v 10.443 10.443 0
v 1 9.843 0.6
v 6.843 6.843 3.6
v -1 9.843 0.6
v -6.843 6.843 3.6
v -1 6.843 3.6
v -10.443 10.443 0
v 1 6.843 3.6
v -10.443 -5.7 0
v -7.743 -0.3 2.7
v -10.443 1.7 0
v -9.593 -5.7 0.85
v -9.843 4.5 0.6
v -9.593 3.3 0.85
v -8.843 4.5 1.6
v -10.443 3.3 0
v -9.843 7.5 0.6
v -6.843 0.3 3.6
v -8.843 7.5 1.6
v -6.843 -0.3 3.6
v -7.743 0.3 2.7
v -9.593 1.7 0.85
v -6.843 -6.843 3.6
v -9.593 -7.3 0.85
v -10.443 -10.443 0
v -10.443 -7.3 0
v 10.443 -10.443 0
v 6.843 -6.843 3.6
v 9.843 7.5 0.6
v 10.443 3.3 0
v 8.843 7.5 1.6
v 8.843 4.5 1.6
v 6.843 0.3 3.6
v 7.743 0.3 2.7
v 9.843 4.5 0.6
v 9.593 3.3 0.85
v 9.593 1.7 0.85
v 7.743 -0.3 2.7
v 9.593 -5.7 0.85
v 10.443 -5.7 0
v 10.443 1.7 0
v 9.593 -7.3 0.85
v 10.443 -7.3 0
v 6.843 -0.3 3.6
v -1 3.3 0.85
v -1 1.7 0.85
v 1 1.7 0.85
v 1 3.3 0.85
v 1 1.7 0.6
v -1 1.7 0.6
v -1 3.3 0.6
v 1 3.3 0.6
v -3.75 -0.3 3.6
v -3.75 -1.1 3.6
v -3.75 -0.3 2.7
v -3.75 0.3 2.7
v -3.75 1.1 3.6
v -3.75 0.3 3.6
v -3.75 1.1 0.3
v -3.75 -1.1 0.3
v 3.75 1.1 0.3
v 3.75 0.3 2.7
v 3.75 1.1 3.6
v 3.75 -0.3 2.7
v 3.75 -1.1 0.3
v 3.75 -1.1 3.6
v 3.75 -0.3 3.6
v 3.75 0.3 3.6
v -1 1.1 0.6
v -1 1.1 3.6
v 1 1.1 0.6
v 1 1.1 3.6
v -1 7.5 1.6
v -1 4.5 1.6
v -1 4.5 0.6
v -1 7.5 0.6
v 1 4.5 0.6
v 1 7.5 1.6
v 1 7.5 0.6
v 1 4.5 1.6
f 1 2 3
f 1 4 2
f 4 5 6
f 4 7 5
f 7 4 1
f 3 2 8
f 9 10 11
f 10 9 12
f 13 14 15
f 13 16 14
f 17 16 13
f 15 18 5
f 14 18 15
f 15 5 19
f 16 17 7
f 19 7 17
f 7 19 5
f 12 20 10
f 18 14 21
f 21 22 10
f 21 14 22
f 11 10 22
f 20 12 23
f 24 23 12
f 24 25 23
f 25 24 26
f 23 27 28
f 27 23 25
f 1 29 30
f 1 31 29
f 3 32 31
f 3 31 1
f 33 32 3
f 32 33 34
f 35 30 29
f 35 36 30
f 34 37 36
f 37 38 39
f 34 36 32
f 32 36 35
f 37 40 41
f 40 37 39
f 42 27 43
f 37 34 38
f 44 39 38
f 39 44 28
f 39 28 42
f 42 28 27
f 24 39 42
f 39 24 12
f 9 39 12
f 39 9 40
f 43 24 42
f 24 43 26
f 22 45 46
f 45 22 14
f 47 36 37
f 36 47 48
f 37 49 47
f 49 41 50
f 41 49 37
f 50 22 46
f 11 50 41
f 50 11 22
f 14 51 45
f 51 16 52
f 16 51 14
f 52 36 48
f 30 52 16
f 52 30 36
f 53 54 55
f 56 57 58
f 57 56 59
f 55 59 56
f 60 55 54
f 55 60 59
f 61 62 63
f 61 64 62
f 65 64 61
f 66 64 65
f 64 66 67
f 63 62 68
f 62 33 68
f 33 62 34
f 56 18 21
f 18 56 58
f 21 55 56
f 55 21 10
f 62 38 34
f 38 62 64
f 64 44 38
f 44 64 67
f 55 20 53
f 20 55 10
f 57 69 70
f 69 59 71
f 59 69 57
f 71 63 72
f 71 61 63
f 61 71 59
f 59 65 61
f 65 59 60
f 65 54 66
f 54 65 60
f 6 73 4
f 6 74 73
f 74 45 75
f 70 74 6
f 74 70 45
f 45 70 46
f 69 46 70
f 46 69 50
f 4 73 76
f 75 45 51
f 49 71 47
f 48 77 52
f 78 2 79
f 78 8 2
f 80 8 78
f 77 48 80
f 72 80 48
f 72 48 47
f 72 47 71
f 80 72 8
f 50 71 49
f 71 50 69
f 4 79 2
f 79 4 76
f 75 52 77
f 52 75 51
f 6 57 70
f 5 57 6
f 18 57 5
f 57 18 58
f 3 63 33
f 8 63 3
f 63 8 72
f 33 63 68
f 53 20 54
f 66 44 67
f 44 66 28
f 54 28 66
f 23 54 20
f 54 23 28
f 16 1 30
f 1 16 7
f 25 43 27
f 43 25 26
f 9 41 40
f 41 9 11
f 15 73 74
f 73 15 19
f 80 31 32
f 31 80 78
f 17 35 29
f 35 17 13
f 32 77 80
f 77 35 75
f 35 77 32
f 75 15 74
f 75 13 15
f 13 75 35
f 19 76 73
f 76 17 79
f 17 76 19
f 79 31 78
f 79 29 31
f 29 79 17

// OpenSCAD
// =============================================================================
// PROJECT: FIXED-WING OMNI-AERO ELRS MOUNT
// VERSION: 1.2 (4-Way Chamfer & Educational Comments)
// DESCRIPTION: A glue-on horizontal mount with all-around aerodynamic 
//              smoothing and recessed channels for ELRS antennas.
// =============================================================================

/* [1. BASE PLATE SETTINGS] */

// Total footprint width
base_w          = 25.0;  
// Total footprint length
base_l          = 25.0;  
// The flexible "hinge" layer (gluing surface)
base_thick      = 1.8;   
// The padded block that holds the antenna
pad_thick       = 1.8;   
// Relief cuts that allow the TPU to curve around a wing
slot_width      = 1.6;   

/* [2. ANTENNA HARDWARE SPECS] */

wire_dia        = .6;   
junction_dia    = 2.2;   
junction_l      = 7.5;   
feedline_dia    = 2.0;   
total_span      = 36.0;  

/* [3. RETENTION & AERO] */

ziptie_width    = 3.0;   
ziptie_thick    = 1.0; 
// Moves the zip-tie back to clamp the coax, not the dipoles
ziptie_offset   = 6.0;  
// Size of the aerodynamic ramps on all sides
aero_chamfer    = 4.0;

/* [4. INTERNAL CALCULATIONS] */

$fn = 60;
total_h = base_thick + pad_thick;

// =============================================================================
// MAIN ASSEMBLY
// =============================================================================

difference() {
    
    // --- STEP 1: THE SOLID BODY ---
    union() {
        // We start with a rounded block using the 'hull' of four cylinders.
        hull() {
            for(x=[-1,1], y=[-1,1]) {
                translate([x * (base_w/2 - 2), y * (base_l/2 - 2), 0])
                    cylinder(h=total_h, r=2);
            }
        }
    }

    // --- STEP 2: THE SUBTRACTIONS (The "Machining" Phase) ---

    // A. OMNI-DIRECTIONAL CHAMFERING
    // This 'for' loop rotates a cutting cube to shave all four edges.
    for(angle=[0, 90, 180, 270]) rotate([0, 0, angle]) {
        // We pick the distance based on whether we are cutting the side or end
        dist = (angle == 0 || angle == 180) ? base_l/2 : base_w/2;
        
        translate([0, dist, total_h])
            rotate([45, 0, 0])
                cube([max(base_w, base_l) + 10, aero_chamfer * 2, aero_chamfer * 2], center=true);
    }

    // B. FLEX RELIEF SLOTS (The "Tank Tread")
    // These only cut through the bottom 1.2mm membrane.
    for(i = [-base_l/2 + 6 : 9 : base_l/2 - 6]) {
        translate([0, i, -0.1])
            cube([base_w + 2, slot_width, base_thick + 0.1], center=true);
    }

    // C. THE ANTENNA CHANNELS (Milled into the top)
    translate([0, 0, total_h]) {
        
        // 1. Dipole Arms (Horizontal Bar)
        rotate([0, 90, 0])
            cylinder(h=total_span, d=wire_dia, center=true);
            
        // 2. T-Junction (The Center Node)
        rotate([0, 90, 0])
            cylinder(h=junction_l, d=junction_dia, center=true);
            
        // 3. Feedline Channel (The Tail)
        translate([0, base_l/4, 0])
            rotate([90, 0, 0])
                cylinder(h=base_l/2 + 2, d=feedline_dia, center=true);
                
        // 4. Snap-Fit Entry Slots (Top Access)
        cube([total_span, wire_dia, wire_dia * 3], center=true);
        cube([junction_l, junction_dia, junction_dia * 3], center=true);
        translate([0, base_l/4, 0])
            cube([feedline_dia, base_l/2, feedline_dia * 3], center=true);
    }

    // D. OFFSET ZIP-TIE TRENCH
    // This is carved into the 'floor' of the channels.
    translate([0, ziptie_offset, total_h - feedline_dia - ziptie_thick/2])
        cube([base_w + 2, ziptie_width, ziptie_thick], center=true);
}
